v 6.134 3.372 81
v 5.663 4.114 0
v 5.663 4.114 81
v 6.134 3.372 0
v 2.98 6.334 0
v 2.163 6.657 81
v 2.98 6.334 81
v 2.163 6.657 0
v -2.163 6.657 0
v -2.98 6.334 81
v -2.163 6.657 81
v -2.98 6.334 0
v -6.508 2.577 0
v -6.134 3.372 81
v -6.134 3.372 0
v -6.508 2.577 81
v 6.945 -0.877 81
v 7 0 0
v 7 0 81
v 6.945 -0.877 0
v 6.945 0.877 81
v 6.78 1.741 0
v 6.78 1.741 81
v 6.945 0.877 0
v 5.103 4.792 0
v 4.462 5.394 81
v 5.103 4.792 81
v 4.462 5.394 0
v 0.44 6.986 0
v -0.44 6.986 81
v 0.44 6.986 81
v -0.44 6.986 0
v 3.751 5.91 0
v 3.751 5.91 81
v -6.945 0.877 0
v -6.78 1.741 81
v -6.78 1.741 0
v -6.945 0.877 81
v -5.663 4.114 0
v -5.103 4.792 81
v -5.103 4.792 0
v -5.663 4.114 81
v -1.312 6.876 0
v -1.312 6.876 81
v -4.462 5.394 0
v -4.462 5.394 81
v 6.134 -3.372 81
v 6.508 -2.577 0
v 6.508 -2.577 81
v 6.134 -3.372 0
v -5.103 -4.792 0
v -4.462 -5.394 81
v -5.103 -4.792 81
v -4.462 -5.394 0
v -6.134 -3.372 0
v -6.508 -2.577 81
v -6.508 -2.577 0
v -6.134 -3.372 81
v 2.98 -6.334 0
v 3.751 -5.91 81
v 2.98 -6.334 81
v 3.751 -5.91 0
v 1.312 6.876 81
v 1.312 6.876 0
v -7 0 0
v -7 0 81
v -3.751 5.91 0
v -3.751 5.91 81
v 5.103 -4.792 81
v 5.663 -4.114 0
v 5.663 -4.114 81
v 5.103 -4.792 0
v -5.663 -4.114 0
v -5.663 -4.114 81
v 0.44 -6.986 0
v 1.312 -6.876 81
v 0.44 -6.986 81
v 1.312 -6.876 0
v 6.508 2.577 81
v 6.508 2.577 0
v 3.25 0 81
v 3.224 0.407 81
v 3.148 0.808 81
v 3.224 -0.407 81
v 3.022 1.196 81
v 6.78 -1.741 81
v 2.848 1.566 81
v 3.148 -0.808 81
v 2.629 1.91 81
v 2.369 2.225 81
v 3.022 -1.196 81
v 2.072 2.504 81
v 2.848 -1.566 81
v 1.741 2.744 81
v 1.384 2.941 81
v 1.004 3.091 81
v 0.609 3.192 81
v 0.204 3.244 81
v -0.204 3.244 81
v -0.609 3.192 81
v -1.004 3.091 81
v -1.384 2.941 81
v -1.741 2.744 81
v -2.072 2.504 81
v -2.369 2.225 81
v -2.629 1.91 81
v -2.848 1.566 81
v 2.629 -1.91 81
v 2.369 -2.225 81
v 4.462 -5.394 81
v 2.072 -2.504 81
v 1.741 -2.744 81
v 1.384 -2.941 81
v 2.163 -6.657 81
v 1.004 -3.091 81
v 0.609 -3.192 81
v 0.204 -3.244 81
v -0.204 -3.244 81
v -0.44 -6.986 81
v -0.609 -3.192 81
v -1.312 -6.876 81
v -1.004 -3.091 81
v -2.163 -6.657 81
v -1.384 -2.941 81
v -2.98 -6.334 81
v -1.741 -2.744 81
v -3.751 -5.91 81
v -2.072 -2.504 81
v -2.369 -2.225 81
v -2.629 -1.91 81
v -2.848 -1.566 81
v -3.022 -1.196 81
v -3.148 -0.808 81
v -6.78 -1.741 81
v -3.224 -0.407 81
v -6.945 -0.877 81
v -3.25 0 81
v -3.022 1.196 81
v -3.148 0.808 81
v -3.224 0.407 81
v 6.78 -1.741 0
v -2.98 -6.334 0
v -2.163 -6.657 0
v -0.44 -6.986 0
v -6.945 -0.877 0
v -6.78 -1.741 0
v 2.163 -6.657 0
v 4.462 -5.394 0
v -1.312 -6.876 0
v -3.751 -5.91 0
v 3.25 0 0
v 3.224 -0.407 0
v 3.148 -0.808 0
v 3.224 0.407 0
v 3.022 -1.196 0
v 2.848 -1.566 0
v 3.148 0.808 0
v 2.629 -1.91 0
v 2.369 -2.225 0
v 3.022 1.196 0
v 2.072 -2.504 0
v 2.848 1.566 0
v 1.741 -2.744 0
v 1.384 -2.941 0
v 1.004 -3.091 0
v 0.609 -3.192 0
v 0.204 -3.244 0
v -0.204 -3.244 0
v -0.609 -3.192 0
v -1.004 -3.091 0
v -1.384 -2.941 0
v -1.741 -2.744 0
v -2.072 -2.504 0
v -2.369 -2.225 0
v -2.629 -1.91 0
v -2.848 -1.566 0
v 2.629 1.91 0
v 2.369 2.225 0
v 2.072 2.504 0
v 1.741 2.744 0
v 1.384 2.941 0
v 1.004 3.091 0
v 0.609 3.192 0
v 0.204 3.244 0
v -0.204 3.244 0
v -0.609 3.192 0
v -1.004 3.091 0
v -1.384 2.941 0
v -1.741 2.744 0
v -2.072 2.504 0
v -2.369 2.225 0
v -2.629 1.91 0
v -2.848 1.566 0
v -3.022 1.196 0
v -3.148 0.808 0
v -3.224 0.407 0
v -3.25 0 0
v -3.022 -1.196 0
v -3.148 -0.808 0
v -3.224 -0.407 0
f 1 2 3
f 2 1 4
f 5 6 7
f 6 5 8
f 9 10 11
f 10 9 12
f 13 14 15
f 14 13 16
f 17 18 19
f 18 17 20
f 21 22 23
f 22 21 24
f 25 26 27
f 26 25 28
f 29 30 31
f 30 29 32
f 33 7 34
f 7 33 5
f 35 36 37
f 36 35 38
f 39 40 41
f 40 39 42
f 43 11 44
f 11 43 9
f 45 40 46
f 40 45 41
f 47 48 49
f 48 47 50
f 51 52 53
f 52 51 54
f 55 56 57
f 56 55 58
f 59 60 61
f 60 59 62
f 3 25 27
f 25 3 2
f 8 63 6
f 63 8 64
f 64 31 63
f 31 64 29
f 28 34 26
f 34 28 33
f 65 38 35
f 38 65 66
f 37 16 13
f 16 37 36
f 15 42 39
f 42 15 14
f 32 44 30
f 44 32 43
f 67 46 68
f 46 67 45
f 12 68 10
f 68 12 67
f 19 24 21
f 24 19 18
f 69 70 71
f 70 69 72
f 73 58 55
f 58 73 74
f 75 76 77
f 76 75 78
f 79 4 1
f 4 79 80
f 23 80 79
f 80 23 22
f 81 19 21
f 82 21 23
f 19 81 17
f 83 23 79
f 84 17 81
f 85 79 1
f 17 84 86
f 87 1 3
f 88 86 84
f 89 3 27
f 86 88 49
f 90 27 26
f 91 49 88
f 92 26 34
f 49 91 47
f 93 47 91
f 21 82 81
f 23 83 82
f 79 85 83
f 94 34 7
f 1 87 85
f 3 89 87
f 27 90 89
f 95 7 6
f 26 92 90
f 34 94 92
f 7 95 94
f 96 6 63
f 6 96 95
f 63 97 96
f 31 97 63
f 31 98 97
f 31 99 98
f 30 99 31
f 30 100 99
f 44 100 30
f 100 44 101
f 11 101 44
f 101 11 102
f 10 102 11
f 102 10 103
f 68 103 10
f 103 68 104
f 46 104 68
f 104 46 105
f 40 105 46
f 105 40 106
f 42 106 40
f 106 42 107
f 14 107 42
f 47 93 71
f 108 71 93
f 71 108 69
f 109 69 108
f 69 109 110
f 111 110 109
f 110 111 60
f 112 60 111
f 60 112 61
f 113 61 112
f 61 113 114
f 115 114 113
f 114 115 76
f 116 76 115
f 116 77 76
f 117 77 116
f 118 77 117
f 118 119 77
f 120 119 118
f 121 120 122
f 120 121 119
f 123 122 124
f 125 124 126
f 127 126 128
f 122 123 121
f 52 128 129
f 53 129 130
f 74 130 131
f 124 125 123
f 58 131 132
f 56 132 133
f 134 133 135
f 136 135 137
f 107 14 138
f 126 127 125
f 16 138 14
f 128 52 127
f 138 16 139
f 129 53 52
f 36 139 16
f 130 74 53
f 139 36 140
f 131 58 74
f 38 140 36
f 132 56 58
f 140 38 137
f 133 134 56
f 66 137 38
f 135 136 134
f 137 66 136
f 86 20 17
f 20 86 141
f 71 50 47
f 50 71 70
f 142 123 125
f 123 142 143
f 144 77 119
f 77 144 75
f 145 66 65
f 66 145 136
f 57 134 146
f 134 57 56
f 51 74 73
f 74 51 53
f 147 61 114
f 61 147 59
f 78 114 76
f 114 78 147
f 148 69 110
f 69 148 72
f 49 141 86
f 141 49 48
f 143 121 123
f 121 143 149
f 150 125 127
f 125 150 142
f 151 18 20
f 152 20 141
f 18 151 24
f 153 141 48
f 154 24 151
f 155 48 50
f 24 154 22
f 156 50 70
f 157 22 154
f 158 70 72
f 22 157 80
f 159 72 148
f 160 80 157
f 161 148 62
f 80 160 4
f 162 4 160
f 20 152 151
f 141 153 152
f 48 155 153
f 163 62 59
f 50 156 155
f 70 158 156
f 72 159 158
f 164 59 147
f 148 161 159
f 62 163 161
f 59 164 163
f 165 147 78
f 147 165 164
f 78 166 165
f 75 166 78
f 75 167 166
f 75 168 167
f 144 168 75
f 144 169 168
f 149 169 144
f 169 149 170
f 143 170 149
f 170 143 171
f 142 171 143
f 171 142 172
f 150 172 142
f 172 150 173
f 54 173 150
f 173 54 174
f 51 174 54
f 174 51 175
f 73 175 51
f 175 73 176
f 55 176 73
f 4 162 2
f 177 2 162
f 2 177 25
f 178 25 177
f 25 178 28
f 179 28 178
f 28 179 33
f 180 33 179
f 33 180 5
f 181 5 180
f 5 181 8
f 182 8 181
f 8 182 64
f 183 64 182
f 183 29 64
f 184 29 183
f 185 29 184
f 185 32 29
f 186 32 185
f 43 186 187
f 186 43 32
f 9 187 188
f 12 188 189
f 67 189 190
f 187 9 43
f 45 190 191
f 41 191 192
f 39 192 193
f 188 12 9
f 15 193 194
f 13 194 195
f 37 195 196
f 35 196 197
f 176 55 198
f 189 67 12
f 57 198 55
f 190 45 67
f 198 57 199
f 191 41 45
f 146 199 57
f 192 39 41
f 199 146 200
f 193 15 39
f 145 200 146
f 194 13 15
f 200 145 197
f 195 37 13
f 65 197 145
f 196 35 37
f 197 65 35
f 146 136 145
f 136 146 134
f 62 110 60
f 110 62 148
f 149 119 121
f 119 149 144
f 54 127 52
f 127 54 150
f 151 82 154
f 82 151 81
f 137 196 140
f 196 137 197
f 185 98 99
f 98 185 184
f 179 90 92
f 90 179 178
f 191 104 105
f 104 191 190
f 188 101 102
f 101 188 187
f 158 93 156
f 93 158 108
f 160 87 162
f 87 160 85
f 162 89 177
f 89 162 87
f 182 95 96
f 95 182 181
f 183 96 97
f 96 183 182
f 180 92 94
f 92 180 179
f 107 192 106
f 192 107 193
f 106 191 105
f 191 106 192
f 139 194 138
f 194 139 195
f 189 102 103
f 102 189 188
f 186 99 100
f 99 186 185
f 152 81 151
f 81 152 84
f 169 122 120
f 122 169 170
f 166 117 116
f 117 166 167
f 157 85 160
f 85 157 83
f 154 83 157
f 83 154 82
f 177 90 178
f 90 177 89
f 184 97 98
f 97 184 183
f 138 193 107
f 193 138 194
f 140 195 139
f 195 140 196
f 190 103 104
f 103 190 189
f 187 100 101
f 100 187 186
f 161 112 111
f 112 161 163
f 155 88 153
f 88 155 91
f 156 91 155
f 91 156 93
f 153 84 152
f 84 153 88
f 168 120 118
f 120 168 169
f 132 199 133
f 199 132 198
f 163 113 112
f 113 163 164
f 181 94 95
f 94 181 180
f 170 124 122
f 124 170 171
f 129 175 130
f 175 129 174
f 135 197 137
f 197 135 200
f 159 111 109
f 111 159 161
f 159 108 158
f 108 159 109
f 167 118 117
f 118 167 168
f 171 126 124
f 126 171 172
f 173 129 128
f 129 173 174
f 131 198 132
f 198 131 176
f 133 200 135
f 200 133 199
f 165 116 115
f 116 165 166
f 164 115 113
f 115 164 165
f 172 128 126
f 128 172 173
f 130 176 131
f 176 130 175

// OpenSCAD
$fn = 50;


difference() {
	union() {
		cylinder(h = 81, r = 7.0000000000);
	}
	union() {
		translate(v = [0.0000000000, 0.0000000000, -100.0000000000]) {
			cylinder(h = 200, r = 3.2500000000);
		}
	}
}
